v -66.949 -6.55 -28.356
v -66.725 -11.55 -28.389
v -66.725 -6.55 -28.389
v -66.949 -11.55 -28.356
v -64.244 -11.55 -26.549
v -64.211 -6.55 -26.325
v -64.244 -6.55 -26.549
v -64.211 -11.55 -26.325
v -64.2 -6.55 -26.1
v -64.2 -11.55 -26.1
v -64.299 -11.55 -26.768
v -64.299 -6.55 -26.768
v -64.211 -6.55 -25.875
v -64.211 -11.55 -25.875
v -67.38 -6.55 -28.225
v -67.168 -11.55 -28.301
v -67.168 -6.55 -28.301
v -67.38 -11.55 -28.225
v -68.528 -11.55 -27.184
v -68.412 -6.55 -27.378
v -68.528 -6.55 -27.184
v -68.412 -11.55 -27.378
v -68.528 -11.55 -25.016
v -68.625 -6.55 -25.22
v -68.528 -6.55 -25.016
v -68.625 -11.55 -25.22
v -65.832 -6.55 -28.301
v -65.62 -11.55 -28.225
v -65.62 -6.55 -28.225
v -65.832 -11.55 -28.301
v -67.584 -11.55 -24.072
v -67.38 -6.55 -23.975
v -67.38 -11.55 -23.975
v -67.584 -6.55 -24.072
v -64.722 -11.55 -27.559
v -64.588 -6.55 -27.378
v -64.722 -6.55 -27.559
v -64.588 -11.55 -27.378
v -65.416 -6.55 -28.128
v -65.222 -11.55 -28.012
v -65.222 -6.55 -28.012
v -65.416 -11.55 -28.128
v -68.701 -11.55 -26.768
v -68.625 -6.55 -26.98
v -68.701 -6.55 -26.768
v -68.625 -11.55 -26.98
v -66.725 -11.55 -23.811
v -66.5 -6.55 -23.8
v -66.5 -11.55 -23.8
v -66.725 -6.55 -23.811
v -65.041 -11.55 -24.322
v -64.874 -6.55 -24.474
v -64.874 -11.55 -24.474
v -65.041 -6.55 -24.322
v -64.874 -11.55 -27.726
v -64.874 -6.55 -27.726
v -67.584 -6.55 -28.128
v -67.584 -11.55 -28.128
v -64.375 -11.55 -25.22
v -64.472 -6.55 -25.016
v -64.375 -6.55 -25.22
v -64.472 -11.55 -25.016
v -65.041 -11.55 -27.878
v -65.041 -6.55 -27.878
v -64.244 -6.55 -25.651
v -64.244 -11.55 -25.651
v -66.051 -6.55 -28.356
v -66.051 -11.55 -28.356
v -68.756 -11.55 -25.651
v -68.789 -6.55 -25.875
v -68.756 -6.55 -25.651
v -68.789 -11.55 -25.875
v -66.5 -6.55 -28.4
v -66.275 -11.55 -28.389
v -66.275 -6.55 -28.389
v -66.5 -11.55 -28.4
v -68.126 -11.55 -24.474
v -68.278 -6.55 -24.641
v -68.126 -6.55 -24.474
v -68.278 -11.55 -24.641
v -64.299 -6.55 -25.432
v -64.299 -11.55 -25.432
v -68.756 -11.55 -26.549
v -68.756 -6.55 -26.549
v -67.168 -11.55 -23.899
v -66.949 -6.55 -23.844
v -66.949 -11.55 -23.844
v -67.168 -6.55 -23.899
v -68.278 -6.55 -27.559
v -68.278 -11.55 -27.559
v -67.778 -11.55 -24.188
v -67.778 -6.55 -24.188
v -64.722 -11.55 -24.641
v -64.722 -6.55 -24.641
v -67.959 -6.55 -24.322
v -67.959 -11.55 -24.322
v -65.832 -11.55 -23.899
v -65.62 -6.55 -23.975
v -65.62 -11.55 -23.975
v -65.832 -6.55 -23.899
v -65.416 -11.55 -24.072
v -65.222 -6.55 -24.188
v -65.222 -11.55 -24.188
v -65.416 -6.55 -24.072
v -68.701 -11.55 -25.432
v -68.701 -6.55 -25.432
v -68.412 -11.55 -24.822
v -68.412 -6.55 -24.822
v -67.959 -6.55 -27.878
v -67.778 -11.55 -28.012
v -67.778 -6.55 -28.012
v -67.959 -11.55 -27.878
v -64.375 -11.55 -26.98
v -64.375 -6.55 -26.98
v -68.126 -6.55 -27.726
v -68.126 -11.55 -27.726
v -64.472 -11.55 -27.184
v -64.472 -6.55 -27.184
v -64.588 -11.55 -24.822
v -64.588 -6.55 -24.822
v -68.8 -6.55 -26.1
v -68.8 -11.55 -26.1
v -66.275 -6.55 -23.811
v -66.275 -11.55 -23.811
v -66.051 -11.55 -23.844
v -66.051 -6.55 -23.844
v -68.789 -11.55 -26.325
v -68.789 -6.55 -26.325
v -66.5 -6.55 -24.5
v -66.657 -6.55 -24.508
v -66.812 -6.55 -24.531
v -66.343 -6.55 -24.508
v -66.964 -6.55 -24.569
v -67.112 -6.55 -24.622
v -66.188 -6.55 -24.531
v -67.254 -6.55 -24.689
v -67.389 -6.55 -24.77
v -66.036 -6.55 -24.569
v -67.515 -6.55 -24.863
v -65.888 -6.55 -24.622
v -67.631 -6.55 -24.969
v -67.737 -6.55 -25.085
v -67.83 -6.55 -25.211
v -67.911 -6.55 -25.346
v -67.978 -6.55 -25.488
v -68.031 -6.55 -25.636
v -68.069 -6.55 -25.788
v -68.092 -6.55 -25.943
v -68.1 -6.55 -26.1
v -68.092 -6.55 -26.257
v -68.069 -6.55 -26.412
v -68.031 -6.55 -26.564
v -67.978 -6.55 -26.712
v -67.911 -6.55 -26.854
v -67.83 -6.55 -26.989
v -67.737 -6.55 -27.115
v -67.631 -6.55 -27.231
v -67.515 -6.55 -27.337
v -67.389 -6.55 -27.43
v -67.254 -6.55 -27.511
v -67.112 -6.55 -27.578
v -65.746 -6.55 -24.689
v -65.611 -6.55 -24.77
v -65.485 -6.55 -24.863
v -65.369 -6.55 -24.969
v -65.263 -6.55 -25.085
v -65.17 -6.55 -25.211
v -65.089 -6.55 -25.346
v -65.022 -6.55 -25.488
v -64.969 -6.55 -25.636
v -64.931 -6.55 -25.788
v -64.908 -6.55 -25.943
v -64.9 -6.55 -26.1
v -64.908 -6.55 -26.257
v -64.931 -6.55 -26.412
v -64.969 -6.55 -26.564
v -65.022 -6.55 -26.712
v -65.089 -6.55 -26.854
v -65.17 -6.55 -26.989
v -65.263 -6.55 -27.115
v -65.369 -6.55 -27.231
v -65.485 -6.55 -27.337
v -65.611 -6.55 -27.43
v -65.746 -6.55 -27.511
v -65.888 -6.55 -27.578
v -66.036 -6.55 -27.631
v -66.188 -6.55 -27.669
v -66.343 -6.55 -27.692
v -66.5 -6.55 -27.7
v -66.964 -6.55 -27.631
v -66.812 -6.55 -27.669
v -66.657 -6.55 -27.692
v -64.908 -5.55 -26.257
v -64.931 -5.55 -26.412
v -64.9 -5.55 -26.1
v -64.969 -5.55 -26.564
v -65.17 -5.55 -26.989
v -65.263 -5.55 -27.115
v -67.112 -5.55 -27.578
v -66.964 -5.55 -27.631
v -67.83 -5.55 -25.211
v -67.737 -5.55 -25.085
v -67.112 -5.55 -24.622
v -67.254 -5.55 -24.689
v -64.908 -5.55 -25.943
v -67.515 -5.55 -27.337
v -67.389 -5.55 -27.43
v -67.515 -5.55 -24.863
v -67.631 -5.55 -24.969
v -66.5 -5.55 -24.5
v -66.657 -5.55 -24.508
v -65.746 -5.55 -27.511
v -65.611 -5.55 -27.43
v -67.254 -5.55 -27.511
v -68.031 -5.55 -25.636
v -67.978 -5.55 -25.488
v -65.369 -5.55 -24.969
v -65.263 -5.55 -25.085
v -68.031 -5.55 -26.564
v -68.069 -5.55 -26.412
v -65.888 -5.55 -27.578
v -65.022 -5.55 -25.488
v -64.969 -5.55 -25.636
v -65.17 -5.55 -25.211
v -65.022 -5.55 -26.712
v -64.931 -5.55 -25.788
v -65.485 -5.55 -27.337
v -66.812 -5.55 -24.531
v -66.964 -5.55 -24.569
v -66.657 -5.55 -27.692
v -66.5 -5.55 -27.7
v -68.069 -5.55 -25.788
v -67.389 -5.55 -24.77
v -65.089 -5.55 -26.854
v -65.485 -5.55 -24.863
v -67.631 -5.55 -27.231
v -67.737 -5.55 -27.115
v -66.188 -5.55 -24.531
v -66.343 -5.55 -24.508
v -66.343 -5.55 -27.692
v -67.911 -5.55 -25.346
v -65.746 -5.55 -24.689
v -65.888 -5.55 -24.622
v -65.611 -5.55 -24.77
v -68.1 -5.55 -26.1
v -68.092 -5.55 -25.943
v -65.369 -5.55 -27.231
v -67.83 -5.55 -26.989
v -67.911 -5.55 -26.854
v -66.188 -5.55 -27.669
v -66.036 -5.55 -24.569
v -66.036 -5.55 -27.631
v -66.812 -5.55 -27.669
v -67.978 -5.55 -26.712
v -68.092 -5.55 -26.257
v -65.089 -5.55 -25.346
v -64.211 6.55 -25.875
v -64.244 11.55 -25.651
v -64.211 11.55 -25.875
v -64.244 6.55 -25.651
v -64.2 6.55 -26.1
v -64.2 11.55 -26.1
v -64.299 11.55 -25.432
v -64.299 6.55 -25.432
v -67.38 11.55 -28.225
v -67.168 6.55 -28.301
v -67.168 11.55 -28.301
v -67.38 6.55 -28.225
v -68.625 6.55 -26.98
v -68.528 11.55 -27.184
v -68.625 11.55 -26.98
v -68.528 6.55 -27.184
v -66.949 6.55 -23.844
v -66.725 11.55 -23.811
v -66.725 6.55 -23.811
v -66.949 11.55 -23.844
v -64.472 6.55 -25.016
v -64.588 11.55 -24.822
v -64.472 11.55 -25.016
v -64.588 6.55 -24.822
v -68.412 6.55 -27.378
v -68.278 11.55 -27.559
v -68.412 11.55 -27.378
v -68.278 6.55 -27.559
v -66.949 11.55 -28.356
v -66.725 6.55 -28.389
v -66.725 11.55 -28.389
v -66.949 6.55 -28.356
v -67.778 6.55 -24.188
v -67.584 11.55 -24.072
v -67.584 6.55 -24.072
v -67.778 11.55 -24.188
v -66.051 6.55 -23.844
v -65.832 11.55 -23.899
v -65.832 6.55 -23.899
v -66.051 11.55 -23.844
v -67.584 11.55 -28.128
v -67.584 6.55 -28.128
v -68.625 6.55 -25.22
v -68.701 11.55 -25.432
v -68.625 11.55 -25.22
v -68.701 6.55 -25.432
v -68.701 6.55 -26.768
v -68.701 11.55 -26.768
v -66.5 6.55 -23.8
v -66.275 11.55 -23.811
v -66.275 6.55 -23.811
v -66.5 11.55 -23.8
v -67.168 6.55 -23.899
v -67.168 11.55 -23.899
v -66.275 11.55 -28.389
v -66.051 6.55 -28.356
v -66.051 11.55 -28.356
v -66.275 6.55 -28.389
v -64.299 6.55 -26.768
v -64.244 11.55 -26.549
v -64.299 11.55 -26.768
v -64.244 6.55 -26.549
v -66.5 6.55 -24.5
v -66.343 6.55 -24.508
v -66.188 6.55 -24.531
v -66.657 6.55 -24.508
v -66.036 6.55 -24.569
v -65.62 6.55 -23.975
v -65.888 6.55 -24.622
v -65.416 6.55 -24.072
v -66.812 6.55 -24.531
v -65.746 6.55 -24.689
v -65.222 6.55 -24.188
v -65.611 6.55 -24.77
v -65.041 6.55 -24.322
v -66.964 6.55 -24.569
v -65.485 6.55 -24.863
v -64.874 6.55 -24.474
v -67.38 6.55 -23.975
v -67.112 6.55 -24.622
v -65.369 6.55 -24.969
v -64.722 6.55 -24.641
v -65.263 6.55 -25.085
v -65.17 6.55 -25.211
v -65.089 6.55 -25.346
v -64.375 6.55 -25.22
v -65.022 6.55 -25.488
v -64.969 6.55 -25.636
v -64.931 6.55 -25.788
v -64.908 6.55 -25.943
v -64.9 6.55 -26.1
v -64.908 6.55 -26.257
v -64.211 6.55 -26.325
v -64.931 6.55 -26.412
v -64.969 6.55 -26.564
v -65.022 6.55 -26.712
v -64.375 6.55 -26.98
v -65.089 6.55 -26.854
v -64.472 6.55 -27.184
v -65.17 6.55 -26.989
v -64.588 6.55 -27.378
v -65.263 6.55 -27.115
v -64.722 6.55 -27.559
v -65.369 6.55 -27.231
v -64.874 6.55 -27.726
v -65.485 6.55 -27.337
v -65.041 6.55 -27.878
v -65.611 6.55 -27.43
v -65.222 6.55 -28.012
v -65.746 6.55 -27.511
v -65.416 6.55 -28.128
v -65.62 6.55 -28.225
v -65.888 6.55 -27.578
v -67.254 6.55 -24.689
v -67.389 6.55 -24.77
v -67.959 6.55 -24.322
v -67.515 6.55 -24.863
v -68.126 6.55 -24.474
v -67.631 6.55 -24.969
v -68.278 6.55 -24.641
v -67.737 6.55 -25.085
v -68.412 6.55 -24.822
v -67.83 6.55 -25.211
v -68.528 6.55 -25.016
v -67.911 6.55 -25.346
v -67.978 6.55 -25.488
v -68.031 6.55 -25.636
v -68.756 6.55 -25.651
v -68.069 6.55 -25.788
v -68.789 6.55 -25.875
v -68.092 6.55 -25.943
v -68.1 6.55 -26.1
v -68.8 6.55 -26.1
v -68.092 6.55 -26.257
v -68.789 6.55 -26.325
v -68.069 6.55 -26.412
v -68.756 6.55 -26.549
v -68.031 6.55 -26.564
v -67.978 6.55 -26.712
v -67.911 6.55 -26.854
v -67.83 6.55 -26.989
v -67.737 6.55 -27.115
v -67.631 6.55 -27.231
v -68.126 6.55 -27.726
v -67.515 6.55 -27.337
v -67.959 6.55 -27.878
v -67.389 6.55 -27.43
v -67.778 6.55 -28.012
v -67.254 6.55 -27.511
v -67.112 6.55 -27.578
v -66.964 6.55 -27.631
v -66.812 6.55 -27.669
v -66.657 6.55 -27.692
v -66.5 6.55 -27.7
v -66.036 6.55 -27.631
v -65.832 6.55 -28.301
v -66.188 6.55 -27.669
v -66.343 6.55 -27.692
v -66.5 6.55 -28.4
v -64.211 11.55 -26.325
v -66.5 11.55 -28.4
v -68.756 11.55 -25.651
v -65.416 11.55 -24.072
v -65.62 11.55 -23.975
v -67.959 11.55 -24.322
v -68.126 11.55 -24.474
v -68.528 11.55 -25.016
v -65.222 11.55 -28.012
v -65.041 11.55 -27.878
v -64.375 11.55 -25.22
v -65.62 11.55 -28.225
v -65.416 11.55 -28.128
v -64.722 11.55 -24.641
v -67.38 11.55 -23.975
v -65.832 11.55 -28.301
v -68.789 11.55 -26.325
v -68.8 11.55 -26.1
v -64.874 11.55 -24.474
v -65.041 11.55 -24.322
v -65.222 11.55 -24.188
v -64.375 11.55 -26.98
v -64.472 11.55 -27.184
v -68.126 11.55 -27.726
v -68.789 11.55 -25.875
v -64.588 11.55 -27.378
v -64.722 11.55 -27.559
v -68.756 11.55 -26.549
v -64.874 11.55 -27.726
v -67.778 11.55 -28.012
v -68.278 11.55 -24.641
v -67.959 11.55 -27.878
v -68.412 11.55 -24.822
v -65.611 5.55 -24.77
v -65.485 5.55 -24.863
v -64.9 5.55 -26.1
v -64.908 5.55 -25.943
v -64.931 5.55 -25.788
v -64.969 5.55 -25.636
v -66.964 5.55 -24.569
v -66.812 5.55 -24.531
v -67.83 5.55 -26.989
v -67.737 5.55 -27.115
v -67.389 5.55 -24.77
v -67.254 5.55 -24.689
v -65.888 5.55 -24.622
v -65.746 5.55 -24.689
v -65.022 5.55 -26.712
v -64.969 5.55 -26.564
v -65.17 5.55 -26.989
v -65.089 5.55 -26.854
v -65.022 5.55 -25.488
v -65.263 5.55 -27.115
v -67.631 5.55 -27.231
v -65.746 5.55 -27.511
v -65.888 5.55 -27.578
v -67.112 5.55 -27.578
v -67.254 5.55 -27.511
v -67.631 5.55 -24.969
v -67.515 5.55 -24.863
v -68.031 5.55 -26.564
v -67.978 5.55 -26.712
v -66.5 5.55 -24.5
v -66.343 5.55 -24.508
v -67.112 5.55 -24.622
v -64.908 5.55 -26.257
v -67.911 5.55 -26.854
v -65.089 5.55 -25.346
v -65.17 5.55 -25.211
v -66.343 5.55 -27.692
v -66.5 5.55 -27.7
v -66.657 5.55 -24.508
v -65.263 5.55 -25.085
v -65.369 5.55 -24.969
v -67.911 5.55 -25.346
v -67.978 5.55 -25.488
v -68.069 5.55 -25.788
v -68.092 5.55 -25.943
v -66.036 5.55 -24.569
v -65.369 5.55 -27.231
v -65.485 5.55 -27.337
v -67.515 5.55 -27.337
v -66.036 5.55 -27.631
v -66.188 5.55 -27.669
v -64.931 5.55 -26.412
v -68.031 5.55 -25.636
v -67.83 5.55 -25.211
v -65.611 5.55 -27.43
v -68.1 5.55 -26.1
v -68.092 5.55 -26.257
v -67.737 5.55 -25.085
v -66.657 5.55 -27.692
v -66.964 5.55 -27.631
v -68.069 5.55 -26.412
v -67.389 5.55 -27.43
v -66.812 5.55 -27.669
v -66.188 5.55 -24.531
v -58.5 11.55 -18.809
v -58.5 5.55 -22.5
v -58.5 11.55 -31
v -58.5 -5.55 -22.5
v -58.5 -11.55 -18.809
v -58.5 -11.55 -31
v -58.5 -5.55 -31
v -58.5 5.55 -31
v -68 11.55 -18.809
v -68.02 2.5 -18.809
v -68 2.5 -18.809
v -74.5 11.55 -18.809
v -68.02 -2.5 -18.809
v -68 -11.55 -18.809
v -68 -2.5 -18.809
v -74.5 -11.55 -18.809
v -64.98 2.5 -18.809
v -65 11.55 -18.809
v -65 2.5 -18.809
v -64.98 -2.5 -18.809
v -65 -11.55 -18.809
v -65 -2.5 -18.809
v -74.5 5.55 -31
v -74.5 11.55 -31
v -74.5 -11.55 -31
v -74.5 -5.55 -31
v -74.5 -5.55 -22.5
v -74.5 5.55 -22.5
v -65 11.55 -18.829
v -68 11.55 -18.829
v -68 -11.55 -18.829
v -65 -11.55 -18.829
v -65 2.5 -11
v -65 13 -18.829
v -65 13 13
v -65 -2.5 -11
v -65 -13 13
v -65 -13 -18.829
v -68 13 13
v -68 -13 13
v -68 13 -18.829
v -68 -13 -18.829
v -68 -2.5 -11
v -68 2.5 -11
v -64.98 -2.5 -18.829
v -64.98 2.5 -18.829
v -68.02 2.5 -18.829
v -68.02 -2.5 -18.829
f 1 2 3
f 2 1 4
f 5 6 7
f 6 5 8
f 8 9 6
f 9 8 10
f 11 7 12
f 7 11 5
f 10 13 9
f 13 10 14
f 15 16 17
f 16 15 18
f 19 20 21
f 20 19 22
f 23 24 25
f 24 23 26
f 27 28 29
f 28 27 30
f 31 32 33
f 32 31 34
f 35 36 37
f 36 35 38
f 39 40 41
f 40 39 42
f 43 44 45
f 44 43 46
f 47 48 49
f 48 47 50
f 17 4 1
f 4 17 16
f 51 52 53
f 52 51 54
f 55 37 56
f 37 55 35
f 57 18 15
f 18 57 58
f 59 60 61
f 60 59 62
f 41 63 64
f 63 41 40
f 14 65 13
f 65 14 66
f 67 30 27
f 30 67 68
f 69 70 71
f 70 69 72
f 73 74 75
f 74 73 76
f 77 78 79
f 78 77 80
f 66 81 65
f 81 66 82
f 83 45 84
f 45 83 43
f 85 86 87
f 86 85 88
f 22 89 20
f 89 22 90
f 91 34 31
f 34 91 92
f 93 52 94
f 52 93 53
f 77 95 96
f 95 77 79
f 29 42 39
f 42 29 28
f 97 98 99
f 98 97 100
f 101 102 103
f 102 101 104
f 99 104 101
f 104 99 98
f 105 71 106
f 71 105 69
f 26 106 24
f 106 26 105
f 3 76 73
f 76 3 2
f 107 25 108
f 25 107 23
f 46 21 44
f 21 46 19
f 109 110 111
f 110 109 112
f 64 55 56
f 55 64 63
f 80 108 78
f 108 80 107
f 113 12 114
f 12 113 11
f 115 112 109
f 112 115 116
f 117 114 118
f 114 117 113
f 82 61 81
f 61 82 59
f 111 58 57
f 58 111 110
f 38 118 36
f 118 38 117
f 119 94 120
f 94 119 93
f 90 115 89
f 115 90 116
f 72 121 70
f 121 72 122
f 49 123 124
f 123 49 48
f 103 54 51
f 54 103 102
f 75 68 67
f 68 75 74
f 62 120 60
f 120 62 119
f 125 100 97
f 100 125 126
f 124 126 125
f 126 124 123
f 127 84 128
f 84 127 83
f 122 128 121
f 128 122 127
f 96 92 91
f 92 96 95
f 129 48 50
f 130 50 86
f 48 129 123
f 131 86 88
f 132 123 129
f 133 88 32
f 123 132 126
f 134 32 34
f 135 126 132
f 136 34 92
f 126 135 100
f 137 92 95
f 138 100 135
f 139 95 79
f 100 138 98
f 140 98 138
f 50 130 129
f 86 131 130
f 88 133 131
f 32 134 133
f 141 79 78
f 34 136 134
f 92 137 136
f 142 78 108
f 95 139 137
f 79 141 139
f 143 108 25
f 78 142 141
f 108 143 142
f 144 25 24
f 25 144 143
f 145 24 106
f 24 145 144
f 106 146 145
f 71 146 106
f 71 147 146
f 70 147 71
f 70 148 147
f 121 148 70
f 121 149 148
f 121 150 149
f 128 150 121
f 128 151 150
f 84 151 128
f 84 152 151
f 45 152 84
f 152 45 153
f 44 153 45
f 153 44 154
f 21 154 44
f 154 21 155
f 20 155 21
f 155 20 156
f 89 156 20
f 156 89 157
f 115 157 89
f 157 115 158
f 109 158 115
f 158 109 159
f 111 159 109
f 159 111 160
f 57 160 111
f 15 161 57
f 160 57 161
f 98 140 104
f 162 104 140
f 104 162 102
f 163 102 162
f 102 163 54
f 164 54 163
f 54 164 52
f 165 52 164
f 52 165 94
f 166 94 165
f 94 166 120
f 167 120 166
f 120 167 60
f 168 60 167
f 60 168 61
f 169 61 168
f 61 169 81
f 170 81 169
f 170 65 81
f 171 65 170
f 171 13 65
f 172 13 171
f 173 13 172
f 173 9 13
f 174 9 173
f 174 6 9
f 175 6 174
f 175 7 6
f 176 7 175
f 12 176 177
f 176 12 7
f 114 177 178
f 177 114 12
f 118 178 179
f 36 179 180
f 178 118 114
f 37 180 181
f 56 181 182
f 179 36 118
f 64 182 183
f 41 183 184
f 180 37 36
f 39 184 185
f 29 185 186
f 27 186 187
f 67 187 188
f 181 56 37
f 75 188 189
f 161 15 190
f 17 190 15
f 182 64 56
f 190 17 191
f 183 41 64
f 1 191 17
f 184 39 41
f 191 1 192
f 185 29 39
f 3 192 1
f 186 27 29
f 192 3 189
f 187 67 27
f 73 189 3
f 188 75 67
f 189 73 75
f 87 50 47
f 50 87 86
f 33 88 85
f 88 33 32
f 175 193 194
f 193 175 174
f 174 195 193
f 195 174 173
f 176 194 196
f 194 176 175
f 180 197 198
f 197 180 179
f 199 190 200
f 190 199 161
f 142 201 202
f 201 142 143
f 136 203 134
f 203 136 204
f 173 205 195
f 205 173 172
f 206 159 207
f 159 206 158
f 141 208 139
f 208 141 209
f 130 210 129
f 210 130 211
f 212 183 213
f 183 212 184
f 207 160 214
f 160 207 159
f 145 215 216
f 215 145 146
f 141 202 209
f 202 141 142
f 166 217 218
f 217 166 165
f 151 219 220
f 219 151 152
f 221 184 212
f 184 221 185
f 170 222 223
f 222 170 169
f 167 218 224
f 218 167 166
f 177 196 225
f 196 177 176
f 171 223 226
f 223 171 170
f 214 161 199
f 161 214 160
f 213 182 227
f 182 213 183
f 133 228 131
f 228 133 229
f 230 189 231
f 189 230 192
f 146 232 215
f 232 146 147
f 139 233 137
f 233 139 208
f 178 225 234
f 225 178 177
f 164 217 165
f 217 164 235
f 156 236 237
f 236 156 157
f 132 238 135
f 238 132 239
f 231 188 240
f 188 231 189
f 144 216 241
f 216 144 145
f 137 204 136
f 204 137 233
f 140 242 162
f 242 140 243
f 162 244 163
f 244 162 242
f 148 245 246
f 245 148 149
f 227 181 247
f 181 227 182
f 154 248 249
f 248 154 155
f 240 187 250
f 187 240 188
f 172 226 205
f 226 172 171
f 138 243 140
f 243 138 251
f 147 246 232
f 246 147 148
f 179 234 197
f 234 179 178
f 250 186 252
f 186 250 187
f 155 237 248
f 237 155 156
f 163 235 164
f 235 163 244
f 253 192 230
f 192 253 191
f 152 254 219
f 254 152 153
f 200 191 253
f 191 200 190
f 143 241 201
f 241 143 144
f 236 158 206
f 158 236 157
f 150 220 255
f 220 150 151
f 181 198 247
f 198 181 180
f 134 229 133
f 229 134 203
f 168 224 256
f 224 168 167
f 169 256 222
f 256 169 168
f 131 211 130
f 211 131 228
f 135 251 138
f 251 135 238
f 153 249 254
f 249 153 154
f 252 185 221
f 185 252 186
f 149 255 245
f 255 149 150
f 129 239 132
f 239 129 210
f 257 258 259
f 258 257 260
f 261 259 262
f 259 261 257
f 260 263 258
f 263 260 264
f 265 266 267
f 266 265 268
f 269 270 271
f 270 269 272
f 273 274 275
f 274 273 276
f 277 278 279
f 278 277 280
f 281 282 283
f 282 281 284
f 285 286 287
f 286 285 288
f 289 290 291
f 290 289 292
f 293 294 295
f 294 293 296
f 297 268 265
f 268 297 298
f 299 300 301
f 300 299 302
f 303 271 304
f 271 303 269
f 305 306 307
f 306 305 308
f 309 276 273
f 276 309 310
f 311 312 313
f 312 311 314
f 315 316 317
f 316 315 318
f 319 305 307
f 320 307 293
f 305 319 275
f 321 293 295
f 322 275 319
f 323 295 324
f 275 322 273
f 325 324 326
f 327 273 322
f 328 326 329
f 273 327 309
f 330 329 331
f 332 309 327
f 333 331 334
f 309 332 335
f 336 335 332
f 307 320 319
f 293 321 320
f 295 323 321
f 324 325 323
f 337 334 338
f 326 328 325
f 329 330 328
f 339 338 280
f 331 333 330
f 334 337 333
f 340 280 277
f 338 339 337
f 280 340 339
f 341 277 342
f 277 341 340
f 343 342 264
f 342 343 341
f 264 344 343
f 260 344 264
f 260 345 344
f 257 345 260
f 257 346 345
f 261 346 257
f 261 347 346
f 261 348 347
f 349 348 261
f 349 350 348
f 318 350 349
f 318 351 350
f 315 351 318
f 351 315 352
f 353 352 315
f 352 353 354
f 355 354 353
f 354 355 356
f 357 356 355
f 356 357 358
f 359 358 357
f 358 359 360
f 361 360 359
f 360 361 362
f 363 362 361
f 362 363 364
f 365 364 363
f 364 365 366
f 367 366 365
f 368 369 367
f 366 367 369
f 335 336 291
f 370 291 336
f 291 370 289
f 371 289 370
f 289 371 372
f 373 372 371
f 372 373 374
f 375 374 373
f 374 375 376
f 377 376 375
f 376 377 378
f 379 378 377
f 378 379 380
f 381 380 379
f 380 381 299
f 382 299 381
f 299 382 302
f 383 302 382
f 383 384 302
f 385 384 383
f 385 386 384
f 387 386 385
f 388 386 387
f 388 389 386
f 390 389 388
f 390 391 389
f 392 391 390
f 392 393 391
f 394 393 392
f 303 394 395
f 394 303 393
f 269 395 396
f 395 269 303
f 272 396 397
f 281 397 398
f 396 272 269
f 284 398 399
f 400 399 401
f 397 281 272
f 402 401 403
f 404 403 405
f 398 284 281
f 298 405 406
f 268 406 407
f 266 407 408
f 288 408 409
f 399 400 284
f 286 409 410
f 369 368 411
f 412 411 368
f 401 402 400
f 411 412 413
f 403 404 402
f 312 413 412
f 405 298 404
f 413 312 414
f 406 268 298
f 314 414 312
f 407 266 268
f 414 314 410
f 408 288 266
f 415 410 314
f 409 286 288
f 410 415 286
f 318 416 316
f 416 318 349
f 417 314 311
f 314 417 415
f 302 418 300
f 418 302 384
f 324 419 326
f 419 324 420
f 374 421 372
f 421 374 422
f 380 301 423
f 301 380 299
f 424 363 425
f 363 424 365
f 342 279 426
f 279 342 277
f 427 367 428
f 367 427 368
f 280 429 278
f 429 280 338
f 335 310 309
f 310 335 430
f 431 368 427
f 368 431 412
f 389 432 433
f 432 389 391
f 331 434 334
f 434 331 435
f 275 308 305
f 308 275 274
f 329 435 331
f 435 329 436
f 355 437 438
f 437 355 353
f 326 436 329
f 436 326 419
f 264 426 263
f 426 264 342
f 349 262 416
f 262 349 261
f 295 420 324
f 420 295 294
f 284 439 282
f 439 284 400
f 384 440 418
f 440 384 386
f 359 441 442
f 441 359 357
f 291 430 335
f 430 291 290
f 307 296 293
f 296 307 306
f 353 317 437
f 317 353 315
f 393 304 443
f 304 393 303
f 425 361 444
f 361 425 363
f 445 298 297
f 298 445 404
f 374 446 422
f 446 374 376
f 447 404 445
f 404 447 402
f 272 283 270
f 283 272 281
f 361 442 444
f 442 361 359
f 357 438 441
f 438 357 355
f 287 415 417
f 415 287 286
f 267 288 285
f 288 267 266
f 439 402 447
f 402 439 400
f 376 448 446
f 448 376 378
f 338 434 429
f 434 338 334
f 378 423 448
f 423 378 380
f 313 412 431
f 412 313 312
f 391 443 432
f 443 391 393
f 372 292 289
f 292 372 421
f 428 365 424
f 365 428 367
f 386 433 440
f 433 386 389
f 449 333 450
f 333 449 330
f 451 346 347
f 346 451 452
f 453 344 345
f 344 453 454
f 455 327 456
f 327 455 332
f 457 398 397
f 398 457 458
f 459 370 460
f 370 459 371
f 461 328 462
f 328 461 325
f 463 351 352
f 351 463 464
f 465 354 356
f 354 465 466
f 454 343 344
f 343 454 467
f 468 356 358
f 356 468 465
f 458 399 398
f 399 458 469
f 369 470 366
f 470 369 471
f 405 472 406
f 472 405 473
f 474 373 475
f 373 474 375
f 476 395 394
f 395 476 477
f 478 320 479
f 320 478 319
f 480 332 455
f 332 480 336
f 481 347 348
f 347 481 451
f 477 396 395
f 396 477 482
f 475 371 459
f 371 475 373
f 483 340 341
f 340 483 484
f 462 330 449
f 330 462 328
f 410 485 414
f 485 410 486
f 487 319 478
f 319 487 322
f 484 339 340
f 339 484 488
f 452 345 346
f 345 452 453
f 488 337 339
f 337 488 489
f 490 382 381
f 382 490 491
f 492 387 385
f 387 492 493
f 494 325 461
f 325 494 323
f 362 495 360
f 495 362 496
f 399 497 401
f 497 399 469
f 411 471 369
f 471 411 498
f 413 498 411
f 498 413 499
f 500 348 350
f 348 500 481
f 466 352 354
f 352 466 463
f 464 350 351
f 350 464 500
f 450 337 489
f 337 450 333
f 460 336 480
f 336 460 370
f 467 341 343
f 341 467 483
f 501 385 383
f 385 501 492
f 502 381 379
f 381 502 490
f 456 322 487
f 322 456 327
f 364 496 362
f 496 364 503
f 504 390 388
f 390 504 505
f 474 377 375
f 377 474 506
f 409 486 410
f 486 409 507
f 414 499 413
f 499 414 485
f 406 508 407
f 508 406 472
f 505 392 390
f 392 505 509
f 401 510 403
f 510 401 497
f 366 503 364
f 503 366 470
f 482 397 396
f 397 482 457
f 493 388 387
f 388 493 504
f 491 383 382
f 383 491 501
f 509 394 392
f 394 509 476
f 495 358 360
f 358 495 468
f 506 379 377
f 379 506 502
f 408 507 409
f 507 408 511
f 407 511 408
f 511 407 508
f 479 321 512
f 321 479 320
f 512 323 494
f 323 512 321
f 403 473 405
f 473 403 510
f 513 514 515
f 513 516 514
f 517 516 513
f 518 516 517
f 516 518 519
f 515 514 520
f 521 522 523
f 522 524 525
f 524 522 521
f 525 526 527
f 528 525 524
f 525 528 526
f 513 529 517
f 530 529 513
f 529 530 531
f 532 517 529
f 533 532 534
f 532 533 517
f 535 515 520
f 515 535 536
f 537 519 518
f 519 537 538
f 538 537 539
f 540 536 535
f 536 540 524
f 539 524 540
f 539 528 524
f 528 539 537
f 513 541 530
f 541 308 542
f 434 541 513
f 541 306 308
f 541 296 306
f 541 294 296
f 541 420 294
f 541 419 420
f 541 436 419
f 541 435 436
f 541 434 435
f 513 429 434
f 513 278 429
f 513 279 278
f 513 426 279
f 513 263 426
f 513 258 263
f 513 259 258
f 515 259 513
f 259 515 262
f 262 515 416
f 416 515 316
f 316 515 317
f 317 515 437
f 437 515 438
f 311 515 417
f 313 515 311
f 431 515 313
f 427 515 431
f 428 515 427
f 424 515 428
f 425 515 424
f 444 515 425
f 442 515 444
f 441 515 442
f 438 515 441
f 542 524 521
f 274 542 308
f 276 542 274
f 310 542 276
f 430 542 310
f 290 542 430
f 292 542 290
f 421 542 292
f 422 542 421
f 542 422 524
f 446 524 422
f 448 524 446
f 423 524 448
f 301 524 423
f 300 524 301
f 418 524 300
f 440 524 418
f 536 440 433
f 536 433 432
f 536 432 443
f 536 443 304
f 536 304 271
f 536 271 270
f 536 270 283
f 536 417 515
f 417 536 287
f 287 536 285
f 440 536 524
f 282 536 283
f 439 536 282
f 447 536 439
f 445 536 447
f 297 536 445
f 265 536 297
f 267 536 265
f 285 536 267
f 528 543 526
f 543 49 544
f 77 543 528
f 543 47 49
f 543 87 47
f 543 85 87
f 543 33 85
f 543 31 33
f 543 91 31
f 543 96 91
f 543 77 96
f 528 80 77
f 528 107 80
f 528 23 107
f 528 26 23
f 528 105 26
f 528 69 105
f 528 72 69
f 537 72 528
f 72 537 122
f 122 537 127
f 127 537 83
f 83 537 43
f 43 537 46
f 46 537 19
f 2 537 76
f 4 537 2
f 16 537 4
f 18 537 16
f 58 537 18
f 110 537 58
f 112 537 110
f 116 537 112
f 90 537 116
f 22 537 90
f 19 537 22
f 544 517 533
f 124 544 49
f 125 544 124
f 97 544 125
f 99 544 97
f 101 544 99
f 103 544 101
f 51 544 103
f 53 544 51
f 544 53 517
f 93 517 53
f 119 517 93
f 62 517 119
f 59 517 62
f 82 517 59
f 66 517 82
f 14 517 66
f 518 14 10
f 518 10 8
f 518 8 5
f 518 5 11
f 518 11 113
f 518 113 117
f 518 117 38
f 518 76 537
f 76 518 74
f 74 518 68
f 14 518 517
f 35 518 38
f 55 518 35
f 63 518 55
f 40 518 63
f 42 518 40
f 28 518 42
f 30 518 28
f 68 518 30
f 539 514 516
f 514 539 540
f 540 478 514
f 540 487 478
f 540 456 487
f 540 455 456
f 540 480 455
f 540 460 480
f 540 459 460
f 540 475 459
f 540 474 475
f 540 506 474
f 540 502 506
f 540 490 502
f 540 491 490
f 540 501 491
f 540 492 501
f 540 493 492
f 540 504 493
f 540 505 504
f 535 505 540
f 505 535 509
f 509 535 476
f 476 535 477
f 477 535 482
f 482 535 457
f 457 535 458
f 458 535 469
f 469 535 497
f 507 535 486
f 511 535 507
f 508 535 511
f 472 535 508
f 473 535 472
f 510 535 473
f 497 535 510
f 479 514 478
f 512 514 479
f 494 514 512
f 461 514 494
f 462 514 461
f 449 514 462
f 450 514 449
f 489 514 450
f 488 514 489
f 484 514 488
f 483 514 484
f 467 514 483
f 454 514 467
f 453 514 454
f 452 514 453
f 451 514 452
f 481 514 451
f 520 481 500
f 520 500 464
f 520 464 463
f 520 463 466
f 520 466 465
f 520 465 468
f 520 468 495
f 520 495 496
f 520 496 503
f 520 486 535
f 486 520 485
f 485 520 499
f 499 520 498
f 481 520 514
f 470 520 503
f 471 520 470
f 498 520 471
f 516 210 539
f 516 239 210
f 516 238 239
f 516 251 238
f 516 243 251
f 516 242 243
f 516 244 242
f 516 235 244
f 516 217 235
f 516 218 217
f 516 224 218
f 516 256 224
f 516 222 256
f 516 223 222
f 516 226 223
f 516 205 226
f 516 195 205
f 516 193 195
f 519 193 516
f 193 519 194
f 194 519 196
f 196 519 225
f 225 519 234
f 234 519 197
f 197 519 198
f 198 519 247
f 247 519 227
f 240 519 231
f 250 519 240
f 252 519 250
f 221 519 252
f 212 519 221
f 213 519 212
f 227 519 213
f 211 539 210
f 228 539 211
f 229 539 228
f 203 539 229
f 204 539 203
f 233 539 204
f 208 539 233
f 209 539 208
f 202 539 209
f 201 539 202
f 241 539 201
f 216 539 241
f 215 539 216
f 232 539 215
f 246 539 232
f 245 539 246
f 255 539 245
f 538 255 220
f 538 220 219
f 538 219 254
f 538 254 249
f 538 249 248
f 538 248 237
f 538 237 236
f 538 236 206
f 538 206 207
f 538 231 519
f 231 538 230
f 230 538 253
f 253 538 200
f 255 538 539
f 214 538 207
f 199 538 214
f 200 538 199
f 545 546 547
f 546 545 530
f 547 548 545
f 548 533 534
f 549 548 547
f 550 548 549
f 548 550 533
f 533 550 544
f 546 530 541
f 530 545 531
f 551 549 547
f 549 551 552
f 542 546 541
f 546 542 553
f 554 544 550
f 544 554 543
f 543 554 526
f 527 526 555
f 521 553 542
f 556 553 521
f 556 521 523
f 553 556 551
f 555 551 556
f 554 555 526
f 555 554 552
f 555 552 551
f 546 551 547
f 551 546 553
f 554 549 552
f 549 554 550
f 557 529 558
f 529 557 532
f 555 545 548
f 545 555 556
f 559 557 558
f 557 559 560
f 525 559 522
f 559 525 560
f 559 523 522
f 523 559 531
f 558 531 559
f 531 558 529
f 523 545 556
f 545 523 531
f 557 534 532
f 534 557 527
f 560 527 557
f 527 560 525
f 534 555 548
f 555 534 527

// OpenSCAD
skip_main_render = true;
include <../../optical_setup.scad>

led_post_slider();
